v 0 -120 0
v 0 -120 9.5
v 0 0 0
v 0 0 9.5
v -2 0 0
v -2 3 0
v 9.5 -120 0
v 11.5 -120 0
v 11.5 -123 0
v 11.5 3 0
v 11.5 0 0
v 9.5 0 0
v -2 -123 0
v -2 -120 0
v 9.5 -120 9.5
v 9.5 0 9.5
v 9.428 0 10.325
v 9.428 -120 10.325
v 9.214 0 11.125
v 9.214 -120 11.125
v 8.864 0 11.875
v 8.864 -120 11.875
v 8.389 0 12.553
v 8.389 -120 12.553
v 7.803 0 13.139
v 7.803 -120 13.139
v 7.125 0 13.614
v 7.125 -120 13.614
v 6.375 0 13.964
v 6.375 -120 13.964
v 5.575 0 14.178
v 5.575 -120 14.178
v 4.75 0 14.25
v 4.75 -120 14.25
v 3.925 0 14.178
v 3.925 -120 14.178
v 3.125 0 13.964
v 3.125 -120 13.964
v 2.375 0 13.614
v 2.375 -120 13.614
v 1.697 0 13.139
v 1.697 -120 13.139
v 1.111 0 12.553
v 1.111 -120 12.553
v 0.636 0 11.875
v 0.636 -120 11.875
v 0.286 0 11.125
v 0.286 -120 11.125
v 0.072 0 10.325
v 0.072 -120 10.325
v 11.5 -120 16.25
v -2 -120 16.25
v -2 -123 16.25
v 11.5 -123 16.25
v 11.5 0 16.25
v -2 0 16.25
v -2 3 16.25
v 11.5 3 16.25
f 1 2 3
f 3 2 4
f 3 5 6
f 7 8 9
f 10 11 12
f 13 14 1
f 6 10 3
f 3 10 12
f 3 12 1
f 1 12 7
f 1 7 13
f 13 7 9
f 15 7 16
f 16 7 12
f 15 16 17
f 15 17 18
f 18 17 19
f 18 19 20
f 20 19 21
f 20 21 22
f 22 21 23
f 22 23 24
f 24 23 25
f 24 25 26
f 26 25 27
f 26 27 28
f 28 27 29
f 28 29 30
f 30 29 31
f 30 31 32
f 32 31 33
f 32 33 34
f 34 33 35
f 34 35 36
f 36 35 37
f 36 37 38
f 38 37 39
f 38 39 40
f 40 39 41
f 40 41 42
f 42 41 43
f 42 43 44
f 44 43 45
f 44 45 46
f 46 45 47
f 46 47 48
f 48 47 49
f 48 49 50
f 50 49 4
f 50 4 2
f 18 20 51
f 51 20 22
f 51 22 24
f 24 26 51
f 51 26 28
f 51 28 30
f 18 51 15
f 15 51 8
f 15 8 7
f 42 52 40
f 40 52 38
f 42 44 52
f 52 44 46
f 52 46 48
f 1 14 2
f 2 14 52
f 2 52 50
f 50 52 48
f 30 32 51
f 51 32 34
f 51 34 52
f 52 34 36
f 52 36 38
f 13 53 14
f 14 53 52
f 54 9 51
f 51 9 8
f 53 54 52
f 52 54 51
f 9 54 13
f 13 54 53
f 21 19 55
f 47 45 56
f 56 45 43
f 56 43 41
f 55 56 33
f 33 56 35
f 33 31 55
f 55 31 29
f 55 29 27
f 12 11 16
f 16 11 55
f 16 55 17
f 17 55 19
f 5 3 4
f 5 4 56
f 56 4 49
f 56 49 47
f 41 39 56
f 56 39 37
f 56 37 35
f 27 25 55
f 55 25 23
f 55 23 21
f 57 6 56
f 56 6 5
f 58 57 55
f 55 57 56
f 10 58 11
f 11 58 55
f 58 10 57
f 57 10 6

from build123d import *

# Parameters (mm, degrees)
BOSS_EXTRUDE1_DEPTH = 120
SKETCH8_W           = 13.5
SKETCH8_H           = 16.25
BOSS_EXTRUDE4_DEPTH = 3
SKETCH9_W           = 13.5
SKETCH9_H           = 16.25
BOSS_EXTRUDE5_DEPTH = 3


with BuildPart() as part:
    # Sketch5 → Boss-Extrude1 (new body)
    with BuildSketch(Plane(origin=(0, 0, 0), x_dir=(1, 0, 0), z_dir=(0, 1, 0))):
        with BuildLine():
            Line((0, 0), (9.5, 0))
            Line((9.5, 0), (9.5, -9.5))
            ThreePointArc((9.5, -9.5), (4.75, -14.25), (0, -9.5))
            Line((0, -9.5), (0, 0))
        make_face()
    extrude(amount=-BOSS_EXTRUDE1_DEPTH)

    # Sketch8 → Boss-Extrude4 (add)
    with BuildSketch(Plane.XZ.offset(120)):
        with Locations((4.75, 8.125)):
            Rectangle(SKETCH8_W, SKETCH8_H)
    extrude(amount=BOSS_EXTRUDE4_DEPTH)

    # Sketch9 → Boss-Extrude5 (add)
    with BuildSketch(Plane(origin=(0, 0, 0), x_dir=(1, 0, 0), z_dir=(0, 1, 0))):
        with Locations((4.75, -8.125)):
            Rectangle(SKETCH9_W, SKETCH9_H)
    extrude(amount=BOSS_EXTRUDE5_DEPTH)


solid = part.part
